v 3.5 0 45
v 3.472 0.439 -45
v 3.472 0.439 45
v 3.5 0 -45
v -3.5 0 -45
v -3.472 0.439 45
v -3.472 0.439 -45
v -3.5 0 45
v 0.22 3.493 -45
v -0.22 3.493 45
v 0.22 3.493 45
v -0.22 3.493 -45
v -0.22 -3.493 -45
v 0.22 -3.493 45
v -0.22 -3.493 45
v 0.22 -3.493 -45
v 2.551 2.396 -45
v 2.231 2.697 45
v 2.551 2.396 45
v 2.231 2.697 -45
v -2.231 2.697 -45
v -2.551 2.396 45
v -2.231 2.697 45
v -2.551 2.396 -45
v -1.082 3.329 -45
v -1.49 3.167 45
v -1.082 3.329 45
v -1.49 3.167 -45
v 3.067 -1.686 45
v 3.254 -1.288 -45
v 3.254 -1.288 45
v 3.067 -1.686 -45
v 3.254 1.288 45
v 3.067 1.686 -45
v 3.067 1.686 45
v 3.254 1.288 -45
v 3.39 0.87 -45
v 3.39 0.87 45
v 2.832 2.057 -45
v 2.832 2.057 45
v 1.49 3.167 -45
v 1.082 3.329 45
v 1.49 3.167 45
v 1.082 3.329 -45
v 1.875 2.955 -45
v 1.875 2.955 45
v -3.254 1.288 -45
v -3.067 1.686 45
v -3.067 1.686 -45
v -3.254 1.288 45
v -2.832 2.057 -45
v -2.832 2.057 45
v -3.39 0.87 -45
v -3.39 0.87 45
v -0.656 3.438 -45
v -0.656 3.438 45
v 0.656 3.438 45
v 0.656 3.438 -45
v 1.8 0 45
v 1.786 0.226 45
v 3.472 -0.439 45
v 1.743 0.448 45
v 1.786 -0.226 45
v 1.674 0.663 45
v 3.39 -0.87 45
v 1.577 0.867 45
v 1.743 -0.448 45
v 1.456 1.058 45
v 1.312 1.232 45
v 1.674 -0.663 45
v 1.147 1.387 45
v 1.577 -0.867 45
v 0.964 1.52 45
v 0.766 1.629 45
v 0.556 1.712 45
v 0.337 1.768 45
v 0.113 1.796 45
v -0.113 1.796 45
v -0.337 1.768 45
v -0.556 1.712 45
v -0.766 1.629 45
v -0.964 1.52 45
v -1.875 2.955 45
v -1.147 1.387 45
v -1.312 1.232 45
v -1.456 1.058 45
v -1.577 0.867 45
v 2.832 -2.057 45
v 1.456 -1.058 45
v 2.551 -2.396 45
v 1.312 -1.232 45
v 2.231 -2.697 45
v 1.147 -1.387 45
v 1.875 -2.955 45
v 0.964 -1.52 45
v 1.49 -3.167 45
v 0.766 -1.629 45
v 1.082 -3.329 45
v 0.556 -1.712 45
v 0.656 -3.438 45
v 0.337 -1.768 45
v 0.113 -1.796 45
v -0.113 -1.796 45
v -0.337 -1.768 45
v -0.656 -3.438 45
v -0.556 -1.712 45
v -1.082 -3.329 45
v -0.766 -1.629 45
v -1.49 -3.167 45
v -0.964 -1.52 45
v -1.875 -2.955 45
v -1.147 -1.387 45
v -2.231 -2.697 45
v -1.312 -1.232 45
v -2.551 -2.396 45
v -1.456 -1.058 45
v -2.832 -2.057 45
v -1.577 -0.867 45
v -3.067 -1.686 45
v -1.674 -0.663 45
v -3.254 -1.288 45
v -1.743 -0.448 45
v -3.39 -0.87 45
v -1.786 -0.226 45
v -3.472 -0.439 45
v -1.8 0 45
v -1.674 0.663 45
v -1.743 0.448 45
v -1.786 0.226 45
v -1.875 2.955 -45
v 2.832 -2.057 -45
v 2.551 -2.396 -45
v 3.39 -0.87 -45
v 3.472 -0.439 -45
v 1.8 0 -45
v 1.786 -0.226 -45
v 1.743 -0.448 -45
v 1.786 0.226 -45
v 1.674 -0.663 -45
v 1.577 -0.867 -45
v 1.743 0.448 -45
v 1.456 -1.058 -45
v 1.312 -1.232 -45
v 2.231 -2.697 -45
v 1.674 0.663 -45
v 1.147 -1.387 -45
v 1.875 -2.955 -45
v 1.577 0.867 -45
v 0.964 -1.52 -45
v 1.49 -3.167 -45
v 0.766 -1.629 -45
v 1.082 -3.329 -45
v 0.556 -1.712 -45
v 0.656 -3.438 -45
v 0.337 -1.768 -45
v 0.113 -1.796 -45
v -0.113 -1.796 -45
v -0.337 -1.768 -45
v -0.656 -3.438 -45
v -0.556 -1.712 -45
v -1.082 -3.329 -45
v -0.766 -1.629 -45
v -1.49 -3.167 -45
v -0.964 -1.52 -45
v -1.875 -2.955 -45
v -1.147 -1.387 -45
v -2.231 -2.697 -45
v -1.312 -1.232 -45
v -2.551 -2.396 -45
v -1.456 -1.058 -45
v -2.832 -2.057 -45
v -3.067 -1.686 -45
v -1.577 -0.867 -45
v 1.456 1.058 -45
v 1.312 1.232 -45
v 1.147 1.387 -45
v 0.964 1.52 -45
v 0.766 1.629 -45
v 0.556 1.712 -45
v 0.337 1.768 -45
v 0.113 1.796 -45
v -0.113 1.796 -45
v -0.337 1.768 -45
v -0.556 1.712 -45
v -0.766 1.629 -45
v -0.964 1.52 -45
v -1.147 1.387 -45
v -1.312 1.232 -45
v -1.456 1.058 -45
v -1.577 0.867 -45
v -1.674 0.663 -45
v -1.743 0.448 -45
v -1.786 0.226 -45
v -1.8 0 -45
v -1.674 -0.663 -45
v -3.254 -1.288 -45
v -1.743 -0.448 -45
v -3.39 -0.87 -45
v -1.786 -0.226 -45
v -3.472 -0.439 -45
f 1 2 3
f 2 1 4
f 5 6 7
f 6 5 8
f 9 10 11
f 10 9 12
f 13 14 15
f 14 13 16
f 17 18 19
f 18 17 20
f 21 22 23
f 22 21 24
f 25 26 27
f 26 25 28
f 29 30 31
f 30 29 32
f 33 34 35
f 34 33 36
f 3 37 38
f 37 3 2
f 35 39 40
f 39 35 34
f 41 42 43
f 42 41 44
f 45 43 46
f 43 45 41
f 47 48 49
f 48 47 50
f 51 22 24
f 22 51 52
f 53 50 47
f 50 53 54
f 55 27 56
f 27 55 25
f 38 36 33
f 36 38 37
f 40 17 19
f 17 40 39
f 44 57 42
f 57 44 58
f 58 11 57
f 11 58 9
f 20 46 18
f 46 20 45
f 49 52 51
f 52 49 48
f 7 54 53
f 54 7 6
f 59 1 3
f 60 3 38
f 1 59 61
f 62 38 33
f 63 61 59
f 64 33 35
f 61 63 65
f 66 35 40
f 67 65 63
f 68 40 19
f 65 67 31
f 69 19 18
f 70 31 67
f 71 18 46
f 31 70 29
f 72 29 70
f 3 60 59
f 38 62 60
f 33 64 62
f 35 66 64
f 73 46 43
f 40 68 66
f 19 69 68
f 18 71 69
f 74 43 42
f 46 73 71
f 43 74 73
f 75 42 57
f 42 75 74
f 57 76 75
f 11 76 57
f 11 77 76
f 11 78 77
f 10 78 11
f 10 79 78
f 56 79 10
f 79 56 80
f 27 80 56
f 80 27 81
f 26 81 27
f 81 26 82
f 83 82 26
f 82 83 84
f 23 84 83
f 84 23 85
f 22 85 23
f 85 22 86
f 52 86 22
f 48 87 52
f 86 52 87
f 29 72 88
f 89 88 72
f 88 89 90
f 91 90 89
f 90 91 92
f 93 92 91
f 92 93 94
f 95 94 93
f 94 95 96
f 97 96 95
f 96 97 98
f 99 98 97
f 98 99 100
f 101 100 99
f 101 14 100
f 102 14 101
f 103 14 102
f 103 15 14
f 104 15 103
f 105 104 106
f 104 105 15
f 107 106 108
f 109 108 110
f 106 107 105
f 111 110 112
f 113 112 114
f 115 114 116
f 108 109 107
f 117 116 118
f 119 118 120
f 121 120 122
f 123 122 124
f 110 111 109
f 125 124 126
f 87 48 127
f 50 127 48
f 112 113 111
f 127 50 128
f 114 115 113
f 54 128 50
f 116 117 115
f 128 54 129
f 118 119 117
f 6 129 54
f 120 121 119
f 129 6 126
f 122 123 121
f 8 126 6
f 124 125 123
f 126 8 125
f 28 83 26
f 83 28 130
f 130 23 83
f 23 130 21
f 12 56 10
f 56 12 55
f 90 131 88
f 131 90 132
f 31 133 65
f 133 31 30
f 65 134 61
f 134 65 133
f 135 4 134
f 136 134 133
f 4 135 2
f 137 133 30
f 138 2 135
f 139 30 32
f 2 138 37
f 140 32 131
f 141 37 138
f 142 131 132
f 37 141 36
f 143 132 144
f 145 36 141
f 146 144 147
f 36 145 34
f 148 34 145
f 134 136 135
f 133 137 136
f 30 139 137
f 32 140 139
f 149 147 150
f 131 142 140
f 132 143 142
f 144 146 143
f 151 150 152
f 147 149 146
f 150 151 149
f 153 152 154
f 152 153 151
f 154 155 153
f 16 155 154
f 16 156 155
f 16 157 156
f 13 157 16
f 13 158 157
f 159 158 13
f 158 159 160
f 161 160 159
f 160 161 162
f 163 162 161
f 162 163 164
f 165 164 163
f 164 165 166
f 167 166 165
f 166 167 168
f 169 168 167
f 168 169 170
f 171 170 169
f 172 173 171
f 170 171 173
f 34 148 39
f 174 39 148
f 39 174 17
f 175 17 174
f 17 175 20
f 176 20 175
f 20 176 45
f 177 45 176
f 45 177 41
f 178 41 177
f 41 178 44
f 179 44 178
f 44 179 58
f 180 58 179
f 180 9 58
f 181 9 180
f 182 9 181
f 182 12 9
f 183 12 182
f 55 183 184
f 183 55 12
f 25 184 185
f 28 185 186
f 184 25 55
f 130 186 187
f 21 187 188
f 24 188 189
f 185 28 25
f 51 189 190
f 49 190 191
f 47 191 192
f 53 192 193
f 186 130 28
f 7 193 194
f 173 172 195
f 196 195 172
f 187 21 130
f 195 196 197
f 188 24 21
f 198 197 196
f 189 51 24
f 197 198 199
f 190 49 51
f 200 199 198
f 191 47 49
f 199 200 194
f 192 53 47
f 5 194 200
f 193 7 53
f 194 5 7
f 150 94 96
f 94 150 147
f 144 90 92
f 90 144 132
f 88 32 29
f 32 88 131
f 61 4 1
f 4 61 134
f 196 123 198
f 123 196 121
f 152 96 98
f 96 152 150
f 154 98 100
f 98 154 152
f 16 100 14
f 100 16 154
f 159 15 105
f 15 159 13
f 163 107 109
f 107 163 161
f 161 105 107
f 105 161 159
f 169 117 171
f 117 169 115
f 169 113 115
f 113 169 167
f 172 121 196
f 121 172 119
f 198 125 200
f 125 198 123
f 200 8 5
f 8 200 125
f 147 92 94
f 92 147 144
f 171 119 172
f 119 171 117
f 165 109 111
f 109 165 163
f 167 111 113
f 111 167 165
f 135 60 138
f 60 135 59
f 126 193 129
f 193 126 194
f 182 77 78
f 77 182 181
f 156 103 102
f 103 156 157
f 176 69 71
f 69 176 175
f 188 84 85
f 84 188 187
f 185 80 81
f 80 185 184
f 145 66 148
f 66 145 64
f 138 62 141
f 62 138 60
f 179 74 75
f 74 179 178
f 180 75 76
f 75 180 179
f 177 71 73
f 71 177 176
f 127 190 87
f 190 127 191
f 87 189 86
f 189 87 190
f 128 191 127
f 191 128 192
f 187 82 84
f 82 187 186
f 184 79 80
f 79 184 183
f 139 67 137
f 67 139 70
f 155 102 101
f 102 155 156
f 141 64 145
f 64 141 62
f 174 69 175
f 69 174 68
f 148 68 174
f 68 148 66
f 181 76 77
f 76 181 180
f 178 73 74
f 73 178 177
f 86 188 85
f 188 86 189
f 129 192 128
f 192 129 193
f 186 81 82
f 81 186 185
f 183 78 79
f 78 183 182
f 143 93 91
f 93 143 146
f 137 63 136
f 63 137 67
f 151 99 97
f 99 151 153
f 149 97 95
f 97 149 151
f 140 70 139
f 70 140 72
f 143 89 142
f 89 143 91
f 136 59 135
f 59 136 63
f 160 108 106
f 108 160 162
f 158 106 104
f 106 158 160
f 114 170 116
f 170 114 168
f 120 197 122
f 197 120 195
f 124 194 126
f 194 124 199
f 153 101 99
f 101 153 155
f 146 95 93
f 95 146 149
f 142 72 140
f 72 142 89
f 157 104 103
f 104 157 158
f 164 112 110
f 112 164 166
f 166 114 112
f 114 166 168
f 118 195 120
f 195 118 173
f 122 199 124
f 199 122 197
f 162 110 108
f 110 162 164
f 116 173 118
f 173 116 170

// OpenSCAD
$fn = 50;


difference() {
	union() {
		translate(v = [0, 0, -45.0000000000]) {
			cylinder(h = 90, r = 3.5000000000);
		}
	}
	union() {
		translate(v = [0, 0, -100.0000000000]) {
			cylinder(h = 200, r = 1.8000000000);
		}
	}
}
